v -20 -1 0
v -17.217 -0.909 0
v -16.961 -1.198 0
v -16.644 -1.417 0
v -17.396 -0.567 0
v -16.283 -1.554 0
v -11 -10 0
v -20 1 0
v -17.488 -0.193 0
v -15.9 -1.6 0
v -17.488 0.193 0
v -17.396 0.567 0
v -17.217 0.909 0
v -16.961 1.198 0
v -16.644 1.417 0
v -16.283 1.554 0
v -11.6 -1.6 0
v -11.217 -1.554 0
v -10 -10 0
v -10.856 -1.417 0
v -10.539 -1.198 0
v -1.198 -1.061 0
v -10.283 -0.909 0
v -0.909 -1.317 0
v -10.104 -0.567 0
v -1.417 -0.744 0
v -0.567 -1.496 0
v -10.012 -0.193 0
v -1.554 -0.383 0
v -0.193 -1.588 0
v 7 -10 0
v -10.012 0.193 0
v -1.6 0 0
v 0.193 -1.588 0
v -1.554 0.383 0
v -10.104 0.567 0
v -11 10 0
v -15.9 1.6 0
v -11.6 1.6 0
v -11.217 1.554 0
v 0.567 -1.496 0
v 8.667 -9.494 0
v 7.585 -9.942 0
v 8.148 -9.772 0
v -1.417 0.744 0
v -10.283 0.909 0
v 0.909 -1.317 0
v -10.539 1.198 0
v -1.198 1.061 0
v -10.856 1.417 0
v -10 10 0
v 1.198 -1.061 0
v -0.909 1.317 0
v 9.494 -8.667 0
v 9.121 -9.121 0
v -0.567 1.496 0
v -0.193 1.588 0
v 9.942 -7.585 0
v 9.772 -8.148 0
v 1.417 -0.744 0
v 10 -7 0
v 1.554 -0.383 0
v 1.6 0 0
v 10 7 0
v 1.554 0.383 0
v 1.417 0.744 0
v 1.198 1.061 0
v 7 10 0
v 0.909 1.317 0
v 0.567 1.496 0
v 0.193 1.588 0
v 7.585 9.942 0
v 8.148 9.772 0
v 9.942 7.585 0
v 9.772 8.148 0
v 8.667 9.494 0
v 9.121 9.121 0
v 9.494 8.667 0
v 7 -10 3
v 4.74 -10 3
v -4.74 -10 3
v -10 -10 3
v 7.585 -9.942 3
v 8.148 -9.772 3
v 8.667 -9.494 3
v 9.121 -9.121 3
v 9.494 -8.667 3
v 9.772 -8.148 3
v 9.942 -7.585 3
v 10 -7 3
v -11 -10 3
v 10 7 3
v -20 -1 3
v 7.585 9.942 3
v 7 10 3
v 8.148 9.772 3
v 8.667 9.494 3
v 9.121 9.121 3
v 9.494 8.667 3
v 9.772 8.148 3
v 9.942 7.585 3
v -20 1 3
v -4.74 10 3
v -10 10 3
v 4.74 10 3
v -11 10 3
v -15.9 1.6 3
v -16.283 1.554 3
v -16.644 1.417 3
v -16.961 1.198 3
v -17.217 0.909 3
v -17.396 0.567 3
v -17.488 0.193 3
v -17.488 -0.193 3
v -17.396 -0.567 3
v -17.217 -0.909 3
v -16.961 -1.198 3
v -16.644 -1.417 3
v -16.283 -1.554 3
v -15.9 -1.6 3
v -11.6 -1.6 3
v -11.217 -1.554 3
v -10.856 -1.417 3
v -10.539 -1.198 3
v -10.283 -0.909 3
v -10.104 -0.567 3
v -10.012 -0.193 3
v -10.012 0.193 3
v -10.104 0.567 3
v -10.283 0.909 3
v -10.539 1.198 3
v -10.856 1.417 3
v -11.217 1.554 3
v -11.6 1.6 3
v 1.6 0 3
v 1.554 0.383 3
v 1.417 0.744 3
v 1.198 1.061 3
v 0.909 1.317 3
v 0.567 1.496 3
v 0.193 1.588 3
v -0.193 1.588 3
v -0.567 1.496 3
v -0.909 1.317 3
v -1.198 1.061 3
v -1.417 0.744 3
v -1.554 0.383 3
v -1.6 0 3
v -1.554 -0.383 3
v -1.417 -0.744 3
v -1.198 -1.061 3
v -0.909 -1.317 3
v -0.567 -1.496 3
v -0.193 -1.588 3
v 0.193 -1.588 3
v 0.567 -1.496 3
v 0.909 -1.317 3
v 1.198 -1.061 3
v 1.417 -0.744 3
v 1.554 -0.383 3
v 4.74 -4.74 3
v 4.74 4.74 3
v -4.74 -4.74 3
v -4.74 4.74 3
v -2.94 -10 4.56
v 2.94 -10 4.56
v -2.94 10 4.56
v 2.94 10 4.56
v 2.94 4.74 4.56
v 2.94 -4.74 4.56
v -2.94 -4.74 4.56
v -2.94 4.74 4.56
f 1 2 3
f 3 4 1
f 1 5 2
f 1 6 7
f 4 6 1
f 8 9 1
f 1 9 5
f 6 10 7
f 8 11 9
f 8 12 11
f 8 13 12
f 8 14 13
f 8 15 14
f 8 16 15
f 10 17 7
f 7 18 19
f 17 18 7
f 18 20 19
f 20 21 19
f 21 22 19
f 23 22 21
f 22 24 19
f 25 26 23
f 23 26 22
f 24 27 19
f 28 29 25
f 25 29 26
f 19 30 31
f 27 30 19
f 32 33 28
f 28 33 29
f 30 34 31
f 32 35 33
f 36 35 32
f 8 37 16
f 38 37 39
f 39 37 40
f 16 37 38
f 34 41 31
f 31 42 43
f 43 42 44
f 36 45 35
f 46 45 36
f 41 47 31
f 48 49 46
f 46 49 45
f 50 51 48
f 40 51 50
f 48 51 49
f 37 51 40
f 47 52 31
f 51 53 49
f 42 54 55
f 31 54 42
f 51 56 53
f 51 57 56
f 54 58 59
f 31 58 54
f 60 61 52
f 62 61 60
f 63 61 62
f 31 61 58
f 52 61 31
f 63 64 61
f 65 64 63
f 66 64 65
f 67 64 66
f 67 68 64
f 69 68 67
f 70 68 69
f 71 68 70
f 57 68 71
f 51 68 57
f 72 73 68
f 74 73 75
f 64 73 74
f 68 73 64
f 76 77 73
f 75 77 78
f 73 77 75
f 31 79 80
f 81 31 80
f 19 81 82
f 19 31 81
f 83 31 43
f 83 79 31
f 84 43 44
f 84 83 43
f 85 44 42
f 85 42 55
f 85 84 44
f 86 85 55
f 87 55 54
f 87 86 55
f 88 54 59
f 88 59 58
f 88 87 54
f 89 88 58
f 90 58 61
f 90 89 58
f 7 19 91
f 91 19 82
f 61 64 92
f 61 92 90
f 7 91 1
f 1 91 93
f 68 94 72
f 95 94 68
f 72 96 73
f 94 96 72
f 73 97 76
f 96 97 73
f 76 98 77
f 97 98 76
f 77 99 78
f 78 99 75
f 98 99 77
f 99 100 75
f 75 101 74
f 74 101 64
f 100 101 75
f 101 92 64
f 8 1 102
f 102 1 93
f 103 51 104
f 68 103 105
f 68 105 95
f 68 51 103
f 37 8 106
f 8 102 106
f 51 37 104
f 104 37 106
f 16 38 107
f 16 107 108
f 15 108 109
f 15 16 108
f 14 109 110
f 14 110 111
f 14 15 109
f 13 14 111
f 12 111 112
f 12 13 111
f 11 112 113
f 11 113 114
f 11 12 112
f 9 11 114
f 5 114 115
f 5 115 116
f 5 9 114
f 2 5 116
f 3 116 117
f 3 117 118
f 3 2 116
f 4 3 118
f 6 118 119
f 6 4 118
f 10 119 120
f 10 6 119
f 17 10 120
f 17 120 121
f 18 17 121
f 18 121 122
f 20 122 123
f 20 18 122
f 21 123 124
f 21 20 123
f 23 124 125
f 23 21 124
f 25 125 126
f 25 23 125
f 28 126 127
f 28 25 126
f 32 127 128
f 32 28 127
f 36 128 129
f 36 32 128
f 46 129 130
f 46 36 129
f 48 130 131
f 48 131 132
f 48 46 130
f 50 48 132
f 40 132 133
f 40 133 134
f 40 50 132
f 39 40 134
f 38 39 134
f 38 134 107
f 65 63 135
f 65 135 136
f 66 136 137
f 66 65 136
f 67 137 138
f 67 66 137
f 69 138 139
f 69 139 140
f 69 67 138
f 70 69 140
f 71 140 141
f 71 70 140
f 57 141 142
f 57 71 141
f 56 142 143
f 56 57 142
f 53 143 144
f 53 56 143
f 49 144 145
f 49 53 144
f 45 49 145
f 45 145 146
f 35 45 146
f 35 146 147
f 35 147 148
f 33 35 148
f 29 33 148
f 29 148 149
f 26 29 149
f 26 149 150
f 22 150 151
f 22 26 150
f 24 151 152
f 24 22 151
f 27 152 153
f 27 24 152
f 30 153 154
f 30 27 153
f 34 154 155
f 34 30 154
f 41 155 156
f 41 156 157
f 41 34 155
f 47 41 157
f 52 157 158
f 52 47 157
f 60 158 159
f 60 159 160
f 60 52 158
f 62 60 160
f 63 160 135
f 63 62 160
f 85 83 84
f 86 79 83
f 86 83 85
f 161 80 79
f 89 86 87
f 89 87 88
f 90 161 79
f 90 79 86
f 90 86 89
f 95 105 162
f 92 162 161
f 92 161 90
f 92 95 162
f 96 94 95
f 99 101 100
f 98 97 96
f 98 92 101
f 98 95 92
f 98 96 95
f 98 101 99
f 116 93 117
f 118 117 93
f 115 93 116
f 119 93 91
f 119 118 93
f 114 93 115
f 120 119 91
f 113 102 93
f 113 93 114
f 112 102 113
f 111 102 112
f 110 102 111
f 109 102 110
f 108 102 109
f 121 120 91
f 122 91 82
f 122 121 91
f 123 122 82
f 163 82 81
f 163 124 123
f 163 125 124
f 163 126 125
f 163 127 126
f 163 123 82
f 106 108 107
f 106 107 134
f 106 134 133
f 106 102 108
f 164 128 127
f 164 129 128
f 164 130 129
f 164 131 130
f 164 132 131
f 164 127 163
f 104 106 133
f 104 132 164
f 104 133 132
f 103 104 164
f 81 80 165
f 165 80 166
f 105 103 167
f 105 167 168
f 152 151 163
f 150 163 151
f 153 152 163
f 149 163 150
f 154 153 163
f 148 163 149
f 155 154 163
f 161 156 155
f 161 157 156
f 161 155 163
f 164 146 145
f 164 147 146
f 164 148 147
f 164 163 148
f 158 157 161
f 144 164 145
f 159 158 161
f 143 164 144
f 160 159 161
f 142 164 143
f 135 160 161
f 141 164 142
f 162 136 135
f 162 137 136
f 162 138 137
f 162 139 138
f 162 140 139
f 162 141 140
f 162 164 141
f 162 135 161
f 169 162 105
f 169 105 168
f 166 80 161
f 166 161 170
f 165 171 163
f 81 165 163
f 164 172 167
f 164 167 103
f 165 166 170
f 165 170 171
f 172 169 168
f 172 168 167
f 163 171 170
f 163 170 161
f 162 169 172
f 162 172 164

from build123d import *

# Parameters (mm, degrees)
SKETCH_R     = 1.6
PAD_DEPTH    = 3
PAD001_DEPTH = 20
SKETCH002_W  = 9.48
SKETCH002_H  = 9.48
POCKET_DEPTH = 1.56
CHAMFER_SIZE = 9
FILLET_R     = 3


with BuildPart() as part:
    # Sketch → Pad (new body)
    with BuildSketch(Plane.XY):
        Polygon((-10, 10), (10, 10), (10, -10), (-10, -10), (-20, -10), (-20, 10), align=None)
        Circle(SKETCH_R, mode=Mode.SUBTRACT)
        with BuildLine():
            ThreePointArc((-15.9, 1.6), (-17.5, 0), (-15.9, -1.6))
            Line((-15.9, -1.6), (-11.6, -1.6))
            ThreePointArc((-11.6, -1.6), (-10, 0), (-11.6, 1.6))
            Line((-11.6, 1.6), (-15.9, 1.6))
        make_face(mode=Mode.SUBTRACT)
    extrude(amount=PAD_DEPTH)

    # Sketch001 (on Face3 of Pad) → Pad001 (join)
    with BuildSketch(Plane.XZ.offset(10)):
        Polygon((-4.74, 3), (4.74, 3), (2.94, 4.56), (-2.94, 4.56), align=None)
    extrude(amount=-PAD001_DEPTH)

    # Sketch002 (on Face18 of Pad001) → Pocket (cut)
    with BuildSketch(Plane.XY.offset(4.56)):
        Rectangle(SKETCH002_W, SKETCH002_H)
    extrude(amount=-POCKET_DEPTH, mode=Mode.SUBTRACT)

    # Chamfer
    chamfer_edges = [part.edges().sort_by_distance(p)[0] for p in [
        (-20, 10, 1.5),
        (-20, -10, 1.5),
    ]]
    chamfer(chamfer_edges, length=CHAMFER_SIZE)

    # Fillet
    fillet_edges = [part.edges().sort_by_distance(p)[0] for p in [
        (10, -10, 1.5),
        (10, 10, 1.5),
    ]]
    fillet(fillet_edges, radius=FILLET_R)


solid = part.part
